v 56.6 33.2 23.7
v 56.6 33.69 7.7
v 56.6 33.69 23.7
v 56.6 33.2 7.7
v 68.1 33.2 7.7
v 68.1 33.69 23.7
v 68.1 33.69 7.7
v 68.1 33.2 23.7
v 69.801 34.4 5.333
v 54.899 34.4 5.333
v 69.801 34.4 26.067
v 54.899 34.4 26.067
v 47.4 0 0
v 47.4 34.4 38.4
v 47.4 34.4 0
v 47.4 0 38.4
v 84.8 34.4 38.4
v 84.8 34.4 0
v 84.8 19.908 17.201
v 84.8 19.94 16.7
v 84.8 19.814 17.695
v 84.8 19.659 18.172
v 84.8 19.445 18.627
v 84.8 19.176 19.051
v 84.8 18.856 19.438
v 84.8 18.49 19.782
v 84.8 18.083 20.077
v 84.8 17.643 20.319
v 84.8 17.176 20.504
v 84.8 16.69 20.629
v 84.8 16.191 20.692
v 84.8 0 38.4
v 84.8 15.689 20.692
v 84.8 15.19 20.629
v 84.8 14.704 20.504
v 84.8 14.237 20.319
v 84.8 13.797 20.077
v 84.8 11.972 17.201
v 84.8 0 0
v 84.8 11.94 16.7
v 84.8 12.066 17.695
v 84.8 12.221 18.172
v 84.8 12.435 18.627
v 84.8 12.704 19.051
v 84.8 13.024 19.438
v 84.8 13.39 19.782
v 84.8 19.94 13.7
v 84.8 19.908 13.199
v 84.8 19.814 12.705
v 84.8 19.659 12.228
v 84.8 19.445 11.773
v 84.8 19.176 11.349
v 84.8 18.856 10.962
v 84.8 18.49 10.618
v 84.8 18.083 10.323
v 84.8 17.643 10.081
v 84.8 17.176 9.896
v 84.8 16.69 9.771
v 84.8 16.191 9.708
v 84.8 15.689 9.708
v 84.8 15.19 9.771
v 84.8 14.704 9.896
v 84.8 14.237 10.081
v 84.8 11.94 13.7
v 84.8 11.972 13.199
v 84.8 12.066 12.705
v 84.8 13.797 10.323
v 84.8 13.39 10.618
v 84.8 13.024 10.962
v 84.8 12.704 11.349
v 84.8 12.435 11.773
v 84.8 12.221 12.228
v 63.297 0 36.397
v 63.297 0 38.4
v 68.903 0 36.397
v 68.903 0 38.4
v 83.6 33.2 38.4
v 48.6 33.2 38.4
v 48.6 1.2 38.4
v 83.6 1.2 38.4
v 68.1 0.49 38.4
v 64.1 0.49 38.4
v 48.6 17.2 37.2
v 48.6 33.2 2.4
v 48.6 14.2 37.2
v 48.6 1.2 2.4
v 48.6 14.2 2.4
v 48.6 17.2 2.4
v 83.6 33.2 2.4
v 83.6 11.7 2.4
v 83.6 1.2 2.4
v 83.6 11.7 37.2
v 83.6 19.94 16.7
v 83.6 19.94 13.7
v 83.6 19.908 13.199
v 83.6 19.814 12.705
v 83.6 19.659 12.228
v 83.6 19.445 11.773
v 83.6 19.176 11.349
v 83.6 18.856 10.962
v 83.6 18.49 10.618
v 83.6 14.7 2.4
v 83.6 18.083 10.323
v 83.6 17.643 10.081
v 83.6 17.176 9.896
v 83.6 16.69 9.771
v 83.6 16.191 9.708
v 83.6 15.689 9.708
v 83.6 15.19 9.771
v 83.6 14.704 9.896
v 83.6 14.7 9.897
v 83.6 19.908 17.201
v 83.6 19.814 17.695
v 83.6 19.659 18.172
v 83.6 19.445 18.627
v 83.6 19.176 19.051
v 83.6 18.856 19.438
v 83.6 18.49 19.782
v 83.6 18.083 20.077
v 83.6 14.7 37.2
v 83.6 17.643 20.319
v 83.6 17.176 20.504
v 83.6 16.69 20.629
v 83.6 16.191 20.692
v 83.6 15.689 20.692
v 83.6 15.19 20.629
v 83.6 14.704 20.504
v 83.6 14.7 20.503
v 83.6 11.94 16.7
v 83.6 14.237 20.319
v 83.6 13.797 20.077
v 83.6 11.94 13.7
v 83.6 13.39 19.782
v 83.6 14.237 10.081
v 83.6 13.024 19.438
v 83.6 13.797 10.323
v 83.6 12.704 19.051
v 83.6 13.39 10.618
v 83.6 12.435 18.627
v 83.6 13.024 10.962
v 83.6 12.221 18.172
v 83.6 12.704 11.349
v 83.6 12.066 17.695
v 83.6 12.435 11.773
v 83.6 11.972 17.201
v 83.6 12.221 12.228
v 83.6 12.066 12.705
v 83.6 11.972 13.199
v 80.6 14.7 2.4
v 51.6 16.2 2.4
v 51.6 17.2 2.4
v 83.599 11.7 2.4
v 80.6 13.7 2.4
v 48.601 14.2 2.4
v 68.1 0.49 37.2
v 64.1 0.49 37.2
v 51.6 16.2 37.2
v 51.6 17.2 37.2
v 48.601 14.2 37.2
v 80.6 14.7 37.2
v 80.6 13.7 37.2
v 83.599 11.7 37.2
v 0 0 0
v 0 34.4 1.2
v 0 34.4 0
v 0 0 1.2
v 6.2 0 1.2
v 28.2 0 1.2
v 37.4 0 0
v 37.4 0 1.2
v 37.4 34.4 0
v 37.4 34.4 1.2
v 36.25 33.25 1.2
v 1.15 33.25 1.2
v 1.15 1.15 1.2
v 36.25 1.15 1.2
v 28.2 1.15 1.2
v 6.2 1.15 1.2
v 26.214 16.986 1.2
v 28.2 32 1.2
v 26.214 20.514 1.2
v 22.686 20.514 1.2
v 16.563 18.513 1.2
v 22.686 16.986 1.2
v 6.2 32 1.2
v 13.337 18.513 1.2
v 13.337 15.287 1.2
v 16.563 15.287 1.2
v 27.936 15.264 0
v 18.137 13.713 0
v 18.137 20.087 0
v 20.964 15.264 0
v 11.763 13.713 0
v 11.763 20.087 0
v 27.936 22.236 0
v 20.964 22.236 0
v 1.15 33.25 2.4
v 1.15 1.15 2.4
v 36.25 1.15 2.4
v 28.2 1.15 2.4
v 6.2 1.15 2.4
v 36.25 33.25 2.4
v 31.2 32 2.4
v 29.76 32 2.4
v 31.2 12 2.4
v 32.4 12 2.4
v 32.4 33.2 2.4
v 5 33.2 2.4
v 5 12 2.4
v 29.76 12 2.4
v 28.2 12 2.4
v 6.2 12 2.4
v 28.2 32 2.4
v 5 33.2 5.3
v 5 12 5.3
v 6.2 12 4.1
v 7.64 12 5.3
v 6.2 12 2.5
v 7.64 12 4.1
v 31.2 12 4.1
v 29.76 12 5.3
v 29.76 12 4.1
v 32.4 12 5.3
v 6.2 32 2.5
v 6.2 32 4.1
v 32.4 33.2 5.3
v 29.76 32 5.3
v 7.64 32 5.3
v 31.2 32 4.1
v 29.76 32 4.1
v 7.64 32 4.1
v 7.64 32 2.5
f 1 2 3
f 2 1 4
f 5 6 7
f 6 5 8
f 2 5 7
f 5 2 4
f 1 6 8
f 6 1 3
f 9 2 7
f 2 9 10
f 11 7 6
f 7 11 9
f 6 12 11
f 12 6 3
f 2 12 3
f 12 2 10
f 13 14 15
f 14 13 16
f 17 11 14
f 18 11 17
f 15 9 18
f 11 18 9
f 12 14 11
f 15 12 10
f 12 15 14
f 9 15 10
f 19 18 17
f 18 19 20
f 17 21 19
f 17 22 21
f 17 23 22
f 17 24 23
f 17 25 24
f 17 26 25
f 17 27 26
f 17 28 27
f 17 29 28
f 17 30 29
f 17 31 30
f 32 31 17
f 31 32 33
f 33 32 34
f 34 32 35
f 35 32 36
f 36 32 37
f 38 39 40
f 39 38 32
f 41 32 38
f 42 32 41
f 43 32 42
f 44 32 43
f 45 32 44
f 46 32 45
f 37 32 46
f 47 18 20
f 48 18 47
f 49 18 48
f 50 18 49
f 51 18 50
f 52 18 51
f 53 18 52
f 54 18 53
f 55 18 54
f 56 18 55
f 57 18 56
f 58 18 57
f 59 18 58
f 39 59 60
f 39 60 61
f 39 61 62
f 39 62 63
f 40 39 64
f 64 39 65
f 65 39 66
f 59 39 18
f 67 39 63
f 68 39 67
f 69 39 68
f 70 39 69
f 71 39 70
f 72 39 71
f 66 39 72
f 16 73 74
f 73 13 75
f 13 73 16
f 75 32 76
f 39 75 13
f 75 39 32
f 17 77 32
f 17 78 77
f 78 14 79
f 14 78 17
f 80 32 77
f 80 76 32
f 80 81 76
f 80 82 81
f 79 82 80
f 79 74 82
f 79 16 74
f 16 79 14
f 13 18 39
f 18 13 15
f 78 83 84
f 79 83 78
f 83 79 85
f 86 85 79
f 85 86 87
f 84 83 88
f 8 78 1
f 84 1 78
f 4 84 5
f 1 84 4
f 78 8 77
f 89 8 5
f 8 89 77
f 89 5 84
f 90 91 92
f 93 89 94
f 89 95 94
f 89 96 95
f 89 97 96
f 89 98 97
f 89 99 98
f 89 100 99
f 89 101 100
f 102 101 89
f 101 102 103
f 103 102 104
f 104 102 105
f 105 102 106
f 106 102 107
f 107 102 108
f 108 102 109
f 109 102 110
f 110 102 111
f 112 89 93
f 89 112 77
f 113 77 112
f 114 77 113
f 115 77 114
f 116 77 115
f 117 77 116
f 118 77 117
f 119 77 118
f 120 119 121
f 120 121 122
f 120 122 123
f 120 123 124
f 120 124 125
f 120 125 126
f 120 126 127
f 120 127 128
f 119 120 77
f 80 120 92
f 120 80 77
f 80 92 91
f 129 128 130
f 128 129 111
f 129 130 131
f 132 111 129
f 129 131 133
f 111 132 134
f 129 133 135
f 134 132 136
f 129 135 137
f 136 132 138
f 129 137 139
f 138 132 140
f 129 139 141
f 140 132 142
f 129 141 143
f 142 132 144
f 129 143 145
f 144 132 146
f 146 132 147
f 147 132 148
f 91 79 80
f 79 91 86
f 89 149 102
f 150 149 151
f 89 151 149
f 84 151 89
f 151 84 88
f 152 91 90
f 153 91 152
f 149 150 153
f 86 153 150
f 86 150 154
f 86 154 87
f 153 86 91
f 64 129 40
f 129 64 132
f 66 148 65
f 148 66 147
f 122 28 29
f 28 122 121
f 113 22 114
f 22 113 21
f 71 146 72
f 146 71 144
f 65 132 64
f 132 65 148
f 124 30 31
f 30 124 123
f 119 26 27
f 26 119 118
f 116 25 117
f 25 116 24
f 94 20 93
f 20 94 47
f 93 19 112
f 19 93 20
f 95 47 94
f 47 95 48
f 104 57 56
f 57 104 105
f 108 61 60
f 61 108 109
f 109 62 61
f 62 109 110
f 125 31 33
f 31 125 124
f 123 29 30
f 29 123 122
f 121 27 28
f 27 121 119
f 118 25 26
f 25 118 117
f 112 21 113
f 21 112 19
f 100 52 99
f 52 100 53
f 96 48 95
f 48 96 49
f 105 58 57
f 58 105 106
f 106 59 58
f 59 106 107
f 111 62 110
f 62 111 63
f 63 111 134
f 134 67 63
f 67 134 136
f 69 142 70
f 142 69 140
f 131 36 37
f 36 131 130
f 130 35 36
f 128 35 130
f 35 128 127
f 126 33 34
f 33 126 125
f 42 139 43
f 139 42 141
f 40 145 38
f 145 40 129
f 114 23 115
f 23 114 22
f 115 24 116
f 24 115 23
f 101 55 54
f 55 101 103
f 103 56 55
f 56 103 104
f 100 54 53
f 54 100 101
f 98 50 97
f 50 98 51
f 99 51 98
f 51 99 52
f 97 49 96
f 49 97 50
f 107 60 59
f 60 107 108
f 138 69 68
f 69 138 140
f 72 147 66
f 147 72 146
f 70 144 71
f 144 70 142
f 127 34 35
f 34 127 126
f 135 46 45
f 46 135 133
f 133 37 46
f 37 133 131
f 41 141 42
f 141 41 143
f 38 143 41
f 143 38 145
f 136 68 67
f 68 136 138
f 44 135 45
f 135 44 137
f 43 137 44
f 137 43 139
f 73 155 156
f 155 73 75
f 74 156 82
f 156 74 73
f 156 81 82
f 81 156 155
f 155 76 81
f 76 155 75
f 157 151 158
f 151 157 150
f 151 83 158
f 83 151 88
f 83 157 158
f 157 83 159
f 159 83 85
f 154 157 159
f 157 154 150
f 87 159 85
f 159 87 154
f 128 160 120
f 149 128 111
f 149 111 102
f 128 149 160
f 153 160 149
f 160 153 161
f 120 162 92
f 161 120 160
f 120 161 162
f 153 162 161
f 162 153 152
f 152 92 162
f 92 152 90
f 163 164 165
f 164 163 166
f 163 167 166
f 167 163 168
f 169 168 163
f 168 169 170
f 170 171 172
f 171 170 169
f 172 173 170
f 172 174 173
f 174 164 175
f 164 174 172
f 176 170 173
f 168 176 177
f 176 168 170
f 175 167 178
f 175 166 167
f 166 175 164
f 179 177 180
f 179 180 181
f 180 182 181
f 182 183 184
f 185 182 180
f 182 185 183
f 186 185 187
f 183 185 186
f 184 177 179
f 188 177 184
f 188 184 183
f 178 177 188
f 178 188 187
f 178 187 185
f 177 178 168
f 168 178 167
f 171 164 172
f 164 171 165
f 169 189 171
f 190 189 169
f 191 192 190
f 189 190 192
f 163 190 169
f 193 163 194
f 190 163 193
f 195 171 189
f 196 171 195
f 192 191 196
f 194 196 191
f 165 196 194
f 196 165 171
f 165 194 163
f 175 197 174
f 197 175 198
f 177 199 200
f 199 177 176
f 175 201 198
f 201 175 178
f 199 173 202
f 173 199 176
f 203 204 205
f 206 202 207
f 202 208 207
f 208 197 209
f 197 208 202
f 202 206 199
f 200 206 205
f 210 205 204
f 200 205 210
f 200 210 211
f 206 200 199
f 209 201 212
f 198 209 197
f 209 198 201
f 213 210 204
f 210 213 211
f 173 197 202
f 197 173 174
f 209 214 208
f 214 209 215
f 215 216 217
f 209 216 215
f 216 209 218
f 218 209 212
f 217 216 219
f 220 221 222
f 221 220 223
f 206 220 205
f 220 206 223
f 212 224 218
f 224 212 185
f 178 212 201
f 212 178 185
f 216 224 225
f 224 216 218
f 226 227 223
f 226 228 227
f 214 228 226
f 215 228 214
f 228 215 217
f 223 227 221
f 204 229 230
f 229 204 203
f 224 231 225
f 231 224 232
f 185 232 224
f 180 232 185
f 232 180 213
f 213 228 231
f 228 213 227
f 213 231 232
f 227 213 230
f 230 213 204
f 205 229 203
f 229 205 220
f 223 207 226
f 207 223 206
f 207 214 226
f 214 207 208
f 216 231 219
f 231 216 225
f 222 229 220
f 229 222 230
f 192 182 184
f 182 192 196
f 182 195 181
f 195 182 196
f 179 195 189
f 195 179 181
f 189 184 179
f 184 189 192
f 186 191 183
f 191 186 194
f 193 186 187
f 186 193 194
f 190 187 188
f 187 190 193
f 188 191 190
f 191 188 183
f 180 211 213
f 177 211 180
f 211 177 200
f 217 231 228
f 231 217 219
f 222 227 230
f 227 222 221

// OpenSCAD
// MODIFY BELOW VARIABLES TO CUSTOMIZE
/*

 WIDTH
  <->
 _____
/     \
▏     ▕       
▏     ▕  ^
▏     ▕  | Height
┕┒    ▕  ⌄ 
 ▕____▕ 

*/

WEMOS_WIDTH = 25;
WEMOS_HEIGHT = 35;
WEMOS_THICKNESS = 1;
WEMOS_WIFI_THICKNESS = 1;
WEMOS_USB_THICKNESS = 2.5;
WEMOS_USB_WIDTH = 8;
WEMOS_USB_CENTER_TO_RIGHT = 14;

USB_CABLE_HEIGHT = 8;
USB_CABLE_WIDTH = 11;

/*
 WIDTH
  <->
 _____
/     \       ^  WEMOS_OLED_OFFSET_TOP
_______       ⌄
▏_____ ▏ ^      
▏▏OLED▏▏ | Height
▏▏___▕▕  ⌄
┕┒_____▏  

*/

WEMOS_OLED_OFFSET_TOP = 7; /* offset to wifi antenna when mounted*/
OLED_WIDTH = 26;
OLED_HEIGHT = 28;
OLED_AND_PINS_THICKNESS = 15;
OLED_THICKNESS = 1.3;
DISPLAY_WIDTH = 16;
DISPLAY_HEIGHT = 11.5;
DISPLAY_OFFSET_LR = 6.5;
DISPLAY_OFFSET_TOP = 1; // offset display to end of it's platine


/*
 WIDTH
  <->
 _______  ^
 ▏○   ◠ ▏ | Height
▕_______▏ ⌄    
SCL -> D1
SDA -> D2

*/
CO2_WIDTH = 25;
CO2_HEIGHT = 20;
CO2_THICKNESS = 1.7;
CO2_OFFSET_LEFT_ENS160 = 7.15;
CO2_OFFSET_BOTTOM_ENS160 = 13.5;
CO2_ENS160_SIZE = 3.2;
CO2_COMP_HEIGHT = 1.2;
CO2_COMP_OFFSET_RIGHT = 3;

CO2_OFFSET_LEFT_AHT21= 16.5;
CO2_OFFSET_BOTTOM_AHT21 = 11.5;
CO2_AHT21_SIZE = 3.5;


/*
           X
          <->
        ________     ^
Y /    /       /|    | Z
 /    /_______/ |    ⌄ 
      |       | /
      |_______|/
*/
BOX_X = WEMOS_HEIGHT;
BOX_Y = 36;
BOX_Z = 32;
WALL_THICKNESS = 1.2;

BOX_X_OUTER = BOX_X + 2 * WALL_THICKNESS;
BOX_Y_OUTER = BOX_Y + 2 * WALL_THICKNESS;
BOX_Z_OUTER = BOX_Z + 2 * WALL_THICKNESS;

// Stützen um Wemos draufzulegen
BOX_BAR_HEIGHT = 3;
BOX_BAR_WIDTH = 3;

// SENS
SENSOR_SUPPORT_BAR_WIDTH = 2.4;

// INTERN PARAMS
WEMOS_UPPER_HEIGHT = OLED_AND_PINS_THICKNESS + WEMOS_THICKNESS;
WEMOS_DISPLAY_OFFSET_TOP = WEMOS_OLED_OFFSET_TOP + DISPLAY_OFFSET_TOP;
CAP_PADDING = BOX_BAR_WIDTH + 2;


/**
 _
| |
|/
Stütze um den WEMOS draufzulegen
*/
module wemos_bar_left() {
    // verbindet die äussere Hülle von Objekten
    translate([0,0,-BOX_BAR_HEIGHT])
        hull() {
            translate([0, 0, BOX_BAR_HEIGHT - 1])
                cube([BOX_BAR_WIDTH, BOX_Y, 1]);
            cube([0.001, BOX_Y, 0.001]); // trick: ein ganz dünner Balken als unteren Rand
        }
}

/**
 _
| |
 \|
Stütze um den WEMOS draufzulegen
*/
module wemos_bar_right() {
    // verbindet die äussere Hülle von Objekten
    translate([0,BOX_Y,0])
        rotate([0,0,180])
            wemos_bar_left();
}

module usb_hole() {
    r = USB_CABLE_HEIGHT / 2;
    translate([-0.01, 0, -(USB_CABLE_HEIGHT - WEMOS_USB_THICKNESS) / 2 - 0.01])
    rotate([0, 90, 0])
        translate([-r, -(USB_CABLE_WIDTH - USB_CABLE_HEIGHT) / 2, 0])
            hull() {
                cylinder(WALL_THICKNESS+0.02, r, r, $fn=50);
                translate([0, USB_CABLE_WIDTH - USB_CABLE_HEIGHT, 0])
                    cylinder(WALL_THICKNESS+0.02, r, r, $fn=50);
            }
}

module display_hole() {
    center_x = DISPLAY_HEIGHT / 2;
    center_y = DISPLAY_WIDTH / 2;
    translate([center_x,center_y, 0.5])
        scale([DISPLAY_HEIGHT, DISPLAY_WIDTH, 1])
            rotate([0,0,45])
                cylinder(h=WALL_THICKNESS,r1=1/sqrt(2), r2=1.5/sqrt(2),$fn=4);
}

module sensor_hole(size) {
    r = size / 2; 
    translate([r, 0, r])
        rotate([-90, 0, 0])
            rotate([0,0,45])
                cylinder(h=WALL_THICKNESS+0.02, r1=sqrt(2)*size, r2=size / sqrt(2), $fn=4);

}

module box() {
    union() {
        difference() {
            // OUTER BOX
            translate([-WALL_THICKNESS, -WALL_THICKNESS, -WALL_THICKNESS])
                cube([BOX_X_OUTER, BOX_Y_OUTER, BOX_Z_OUTER]);

            // INNER BOX
            translate([0, -WALL_THICKNESS-0.1, 0])
                cube([BOX_X,BOX_Y+0.1,BOX_Z]);

            // USB Hole
            usb_y = BOX_Y - WEMOS_USB_CENTER_TO_RIGHT;
            usb_z = BOX_Z - WEMOS_UPPER_HEIGHT - WEMOS_USB_THICKNESS;
            translate([BOX_X, usb_y, usb_z])
                usb_hole();

            // DISPLAY HOLE
            translate([WEMOS_DISPLAY_OFFSET_TOP, BOX_Y - DISPLAY_OFFSET_LR - DISPLAY_WIDTH, BOX_Z - 0.01])
                union() {
                    cube([DISPLAY_HEIGHT, DISPLAY_WIDTH, WALL_THICKNESS + 0.02]);
                    display_hole();
                }
            
            // CAP REMOVAL HOLE
            translate([BOX_X / 2, WALL_THICKNESS / 2 - 2.6, -WALL_THICKNESS*1.1])
                rotate([0, 0, 45])
                    cylinder(h=WALL_THICKNESS+0.02, r1=8 / sqrt(2), r2= 4 / sqrt(2), center=true, $fn=4);
            
        }
        // WIFI-SIDE
        translate([0, 0, BOX_Z - WEMOS_UPPER_HEIGHT])
            wemos_bar_left();

        // USB-SIDE
        translate([BOX_X, 0, BOX_Z - WEMOS_UPPER_HEIGHT - WEMOS_USB_THICKNESS])
            wemos_bar_right();
    }
}

module cap() {
    offset = 0.05;
    difference() {
        union() {
            // BASE
            translate([-WALL_THICKNESS, -WALL_THICKNESS, -WALL_THICKNESS])
                cube([BOX_X_OUTER, WALL_THICKNESS, BOX_Z_OUTER]);
            // INSET
            translate([-offset, 0, -offset])
                cube([BOX_X + 2 * offset, WALL_THICKNESS, BOX_Z + 2 * offset]);
            // HOLDER LEFT
            translate([CAP_PADDING - WALL_THICKNESS, WALL_THICKNESS, WALL_THICKNESS])
                cube([WALL_THICKNESS, CO2_THICKNESS + WALL_THICKNESS, CO2_HEIGHT]);
            
            // HOLDER RIGHT
            translate([CAP_PADDING + CO2_WIDTH, WALL_THICKNESS, WALL_THICKNESS])
                cube([WALL_THICKNESS, CO2_THICKNESS + WALL_THICKNESS, CO2_HEIGHT]);

            // HOLDER BOTTOM
            translate([CAP_PADDING-WALL_THICKNESS, WALL_THICKNESS, 0])
                cube([CO2_WIDTH+2*WALL_THICKNESS, CO2_THICKNESS + WALL_THICKNESS, WALL_THICKNESS]);
            
            // HOLDER TOP
            translate([CAP_PADDING-WALL_THICKNESS, CO2_THICKNESS + WALL_THICKNESS, 0])
                cube([CO2_WIDTH+2*WALL_THICKNESS, WALL_THICKNESS, CO2_HEIGHT + WALL_THICKNESS]);
        }
        // AHT21
        aht_x = CAP_PADDING + CO2_OFFSET_LEFT_AHT21;
        aht_y = -WALL_THICKNESS - 0.01;
        aht_z = WALL_THICKNESS + CO2_OFFSET_BOTTOM_AHT21;
        translate([aht_x,aht_y,aht_z])
            sensor_hole(CO2_AHT21_SIZE );
        
        

        // ENS160        
        ens_x = CAP_PADDING + CO2_OFFSET_LEFT_ENS160;
        ens_y = -WALL_THICKNESS - 0.01;
        ens_z = WALL_THICKNESS + CO2_OFFSET_BOTTOM_ENS160;
        translate([ens_x, ens_y, ens_z])
            sensor_hole(CO2_ENS160_SIZE);

        // SPARE PLACE FOR COMPONENTS
        translate([CAP_PADDING, WALL_THICKNESS - CO2_COMP_HEIGHT, WALL_THICKNESS])
            cube([CO2_WIDTH - CO2_COMP_OFFSET_RIGHT, CO2_COMP_HEIGHT + 0.1, BOX_Z]);

        // REMOVE PART OF CO2 HOLDER TOP
        translate([CAP_PADDING + (SENSOR_SUPPORT_BAR_WIDTH / 2) *WALL_THICKNESS, WALL_THICKNESS, WALL_THICKNESS])
            cube([CO2_WIDTH-SENSOR_SUPPORT_BAR_WIDTH*WALL_THICKNESS, 3*WALL_THICKNESS, CO2_HEIGHT]);
    }
}

// BOX
translate([BOX_X_OUTER + 10, 0, 0]) // translate where you want it
    rotate([270, 0, 0]) // 2: rotate
        translate([WALL_THICKNESS, -BOX_Y_OUTER + WALL_THICKNESS, WALL_THICKNESS]) // 1. bring to origin 
            box();

// CAP
translate([0, BOX_Z_OUTER, 0]) // 3. translate where you want it
    rotate([90, 0, 0]) // 2. rotate
        translate([WALL_THICKNESS,WALL_THICKNESS,WALL_THICKNESS]) // 1. bring to origin
            cap();

//display_hole();
//cap();
//box();
//wemos_bar_right();
//usb_hole();
